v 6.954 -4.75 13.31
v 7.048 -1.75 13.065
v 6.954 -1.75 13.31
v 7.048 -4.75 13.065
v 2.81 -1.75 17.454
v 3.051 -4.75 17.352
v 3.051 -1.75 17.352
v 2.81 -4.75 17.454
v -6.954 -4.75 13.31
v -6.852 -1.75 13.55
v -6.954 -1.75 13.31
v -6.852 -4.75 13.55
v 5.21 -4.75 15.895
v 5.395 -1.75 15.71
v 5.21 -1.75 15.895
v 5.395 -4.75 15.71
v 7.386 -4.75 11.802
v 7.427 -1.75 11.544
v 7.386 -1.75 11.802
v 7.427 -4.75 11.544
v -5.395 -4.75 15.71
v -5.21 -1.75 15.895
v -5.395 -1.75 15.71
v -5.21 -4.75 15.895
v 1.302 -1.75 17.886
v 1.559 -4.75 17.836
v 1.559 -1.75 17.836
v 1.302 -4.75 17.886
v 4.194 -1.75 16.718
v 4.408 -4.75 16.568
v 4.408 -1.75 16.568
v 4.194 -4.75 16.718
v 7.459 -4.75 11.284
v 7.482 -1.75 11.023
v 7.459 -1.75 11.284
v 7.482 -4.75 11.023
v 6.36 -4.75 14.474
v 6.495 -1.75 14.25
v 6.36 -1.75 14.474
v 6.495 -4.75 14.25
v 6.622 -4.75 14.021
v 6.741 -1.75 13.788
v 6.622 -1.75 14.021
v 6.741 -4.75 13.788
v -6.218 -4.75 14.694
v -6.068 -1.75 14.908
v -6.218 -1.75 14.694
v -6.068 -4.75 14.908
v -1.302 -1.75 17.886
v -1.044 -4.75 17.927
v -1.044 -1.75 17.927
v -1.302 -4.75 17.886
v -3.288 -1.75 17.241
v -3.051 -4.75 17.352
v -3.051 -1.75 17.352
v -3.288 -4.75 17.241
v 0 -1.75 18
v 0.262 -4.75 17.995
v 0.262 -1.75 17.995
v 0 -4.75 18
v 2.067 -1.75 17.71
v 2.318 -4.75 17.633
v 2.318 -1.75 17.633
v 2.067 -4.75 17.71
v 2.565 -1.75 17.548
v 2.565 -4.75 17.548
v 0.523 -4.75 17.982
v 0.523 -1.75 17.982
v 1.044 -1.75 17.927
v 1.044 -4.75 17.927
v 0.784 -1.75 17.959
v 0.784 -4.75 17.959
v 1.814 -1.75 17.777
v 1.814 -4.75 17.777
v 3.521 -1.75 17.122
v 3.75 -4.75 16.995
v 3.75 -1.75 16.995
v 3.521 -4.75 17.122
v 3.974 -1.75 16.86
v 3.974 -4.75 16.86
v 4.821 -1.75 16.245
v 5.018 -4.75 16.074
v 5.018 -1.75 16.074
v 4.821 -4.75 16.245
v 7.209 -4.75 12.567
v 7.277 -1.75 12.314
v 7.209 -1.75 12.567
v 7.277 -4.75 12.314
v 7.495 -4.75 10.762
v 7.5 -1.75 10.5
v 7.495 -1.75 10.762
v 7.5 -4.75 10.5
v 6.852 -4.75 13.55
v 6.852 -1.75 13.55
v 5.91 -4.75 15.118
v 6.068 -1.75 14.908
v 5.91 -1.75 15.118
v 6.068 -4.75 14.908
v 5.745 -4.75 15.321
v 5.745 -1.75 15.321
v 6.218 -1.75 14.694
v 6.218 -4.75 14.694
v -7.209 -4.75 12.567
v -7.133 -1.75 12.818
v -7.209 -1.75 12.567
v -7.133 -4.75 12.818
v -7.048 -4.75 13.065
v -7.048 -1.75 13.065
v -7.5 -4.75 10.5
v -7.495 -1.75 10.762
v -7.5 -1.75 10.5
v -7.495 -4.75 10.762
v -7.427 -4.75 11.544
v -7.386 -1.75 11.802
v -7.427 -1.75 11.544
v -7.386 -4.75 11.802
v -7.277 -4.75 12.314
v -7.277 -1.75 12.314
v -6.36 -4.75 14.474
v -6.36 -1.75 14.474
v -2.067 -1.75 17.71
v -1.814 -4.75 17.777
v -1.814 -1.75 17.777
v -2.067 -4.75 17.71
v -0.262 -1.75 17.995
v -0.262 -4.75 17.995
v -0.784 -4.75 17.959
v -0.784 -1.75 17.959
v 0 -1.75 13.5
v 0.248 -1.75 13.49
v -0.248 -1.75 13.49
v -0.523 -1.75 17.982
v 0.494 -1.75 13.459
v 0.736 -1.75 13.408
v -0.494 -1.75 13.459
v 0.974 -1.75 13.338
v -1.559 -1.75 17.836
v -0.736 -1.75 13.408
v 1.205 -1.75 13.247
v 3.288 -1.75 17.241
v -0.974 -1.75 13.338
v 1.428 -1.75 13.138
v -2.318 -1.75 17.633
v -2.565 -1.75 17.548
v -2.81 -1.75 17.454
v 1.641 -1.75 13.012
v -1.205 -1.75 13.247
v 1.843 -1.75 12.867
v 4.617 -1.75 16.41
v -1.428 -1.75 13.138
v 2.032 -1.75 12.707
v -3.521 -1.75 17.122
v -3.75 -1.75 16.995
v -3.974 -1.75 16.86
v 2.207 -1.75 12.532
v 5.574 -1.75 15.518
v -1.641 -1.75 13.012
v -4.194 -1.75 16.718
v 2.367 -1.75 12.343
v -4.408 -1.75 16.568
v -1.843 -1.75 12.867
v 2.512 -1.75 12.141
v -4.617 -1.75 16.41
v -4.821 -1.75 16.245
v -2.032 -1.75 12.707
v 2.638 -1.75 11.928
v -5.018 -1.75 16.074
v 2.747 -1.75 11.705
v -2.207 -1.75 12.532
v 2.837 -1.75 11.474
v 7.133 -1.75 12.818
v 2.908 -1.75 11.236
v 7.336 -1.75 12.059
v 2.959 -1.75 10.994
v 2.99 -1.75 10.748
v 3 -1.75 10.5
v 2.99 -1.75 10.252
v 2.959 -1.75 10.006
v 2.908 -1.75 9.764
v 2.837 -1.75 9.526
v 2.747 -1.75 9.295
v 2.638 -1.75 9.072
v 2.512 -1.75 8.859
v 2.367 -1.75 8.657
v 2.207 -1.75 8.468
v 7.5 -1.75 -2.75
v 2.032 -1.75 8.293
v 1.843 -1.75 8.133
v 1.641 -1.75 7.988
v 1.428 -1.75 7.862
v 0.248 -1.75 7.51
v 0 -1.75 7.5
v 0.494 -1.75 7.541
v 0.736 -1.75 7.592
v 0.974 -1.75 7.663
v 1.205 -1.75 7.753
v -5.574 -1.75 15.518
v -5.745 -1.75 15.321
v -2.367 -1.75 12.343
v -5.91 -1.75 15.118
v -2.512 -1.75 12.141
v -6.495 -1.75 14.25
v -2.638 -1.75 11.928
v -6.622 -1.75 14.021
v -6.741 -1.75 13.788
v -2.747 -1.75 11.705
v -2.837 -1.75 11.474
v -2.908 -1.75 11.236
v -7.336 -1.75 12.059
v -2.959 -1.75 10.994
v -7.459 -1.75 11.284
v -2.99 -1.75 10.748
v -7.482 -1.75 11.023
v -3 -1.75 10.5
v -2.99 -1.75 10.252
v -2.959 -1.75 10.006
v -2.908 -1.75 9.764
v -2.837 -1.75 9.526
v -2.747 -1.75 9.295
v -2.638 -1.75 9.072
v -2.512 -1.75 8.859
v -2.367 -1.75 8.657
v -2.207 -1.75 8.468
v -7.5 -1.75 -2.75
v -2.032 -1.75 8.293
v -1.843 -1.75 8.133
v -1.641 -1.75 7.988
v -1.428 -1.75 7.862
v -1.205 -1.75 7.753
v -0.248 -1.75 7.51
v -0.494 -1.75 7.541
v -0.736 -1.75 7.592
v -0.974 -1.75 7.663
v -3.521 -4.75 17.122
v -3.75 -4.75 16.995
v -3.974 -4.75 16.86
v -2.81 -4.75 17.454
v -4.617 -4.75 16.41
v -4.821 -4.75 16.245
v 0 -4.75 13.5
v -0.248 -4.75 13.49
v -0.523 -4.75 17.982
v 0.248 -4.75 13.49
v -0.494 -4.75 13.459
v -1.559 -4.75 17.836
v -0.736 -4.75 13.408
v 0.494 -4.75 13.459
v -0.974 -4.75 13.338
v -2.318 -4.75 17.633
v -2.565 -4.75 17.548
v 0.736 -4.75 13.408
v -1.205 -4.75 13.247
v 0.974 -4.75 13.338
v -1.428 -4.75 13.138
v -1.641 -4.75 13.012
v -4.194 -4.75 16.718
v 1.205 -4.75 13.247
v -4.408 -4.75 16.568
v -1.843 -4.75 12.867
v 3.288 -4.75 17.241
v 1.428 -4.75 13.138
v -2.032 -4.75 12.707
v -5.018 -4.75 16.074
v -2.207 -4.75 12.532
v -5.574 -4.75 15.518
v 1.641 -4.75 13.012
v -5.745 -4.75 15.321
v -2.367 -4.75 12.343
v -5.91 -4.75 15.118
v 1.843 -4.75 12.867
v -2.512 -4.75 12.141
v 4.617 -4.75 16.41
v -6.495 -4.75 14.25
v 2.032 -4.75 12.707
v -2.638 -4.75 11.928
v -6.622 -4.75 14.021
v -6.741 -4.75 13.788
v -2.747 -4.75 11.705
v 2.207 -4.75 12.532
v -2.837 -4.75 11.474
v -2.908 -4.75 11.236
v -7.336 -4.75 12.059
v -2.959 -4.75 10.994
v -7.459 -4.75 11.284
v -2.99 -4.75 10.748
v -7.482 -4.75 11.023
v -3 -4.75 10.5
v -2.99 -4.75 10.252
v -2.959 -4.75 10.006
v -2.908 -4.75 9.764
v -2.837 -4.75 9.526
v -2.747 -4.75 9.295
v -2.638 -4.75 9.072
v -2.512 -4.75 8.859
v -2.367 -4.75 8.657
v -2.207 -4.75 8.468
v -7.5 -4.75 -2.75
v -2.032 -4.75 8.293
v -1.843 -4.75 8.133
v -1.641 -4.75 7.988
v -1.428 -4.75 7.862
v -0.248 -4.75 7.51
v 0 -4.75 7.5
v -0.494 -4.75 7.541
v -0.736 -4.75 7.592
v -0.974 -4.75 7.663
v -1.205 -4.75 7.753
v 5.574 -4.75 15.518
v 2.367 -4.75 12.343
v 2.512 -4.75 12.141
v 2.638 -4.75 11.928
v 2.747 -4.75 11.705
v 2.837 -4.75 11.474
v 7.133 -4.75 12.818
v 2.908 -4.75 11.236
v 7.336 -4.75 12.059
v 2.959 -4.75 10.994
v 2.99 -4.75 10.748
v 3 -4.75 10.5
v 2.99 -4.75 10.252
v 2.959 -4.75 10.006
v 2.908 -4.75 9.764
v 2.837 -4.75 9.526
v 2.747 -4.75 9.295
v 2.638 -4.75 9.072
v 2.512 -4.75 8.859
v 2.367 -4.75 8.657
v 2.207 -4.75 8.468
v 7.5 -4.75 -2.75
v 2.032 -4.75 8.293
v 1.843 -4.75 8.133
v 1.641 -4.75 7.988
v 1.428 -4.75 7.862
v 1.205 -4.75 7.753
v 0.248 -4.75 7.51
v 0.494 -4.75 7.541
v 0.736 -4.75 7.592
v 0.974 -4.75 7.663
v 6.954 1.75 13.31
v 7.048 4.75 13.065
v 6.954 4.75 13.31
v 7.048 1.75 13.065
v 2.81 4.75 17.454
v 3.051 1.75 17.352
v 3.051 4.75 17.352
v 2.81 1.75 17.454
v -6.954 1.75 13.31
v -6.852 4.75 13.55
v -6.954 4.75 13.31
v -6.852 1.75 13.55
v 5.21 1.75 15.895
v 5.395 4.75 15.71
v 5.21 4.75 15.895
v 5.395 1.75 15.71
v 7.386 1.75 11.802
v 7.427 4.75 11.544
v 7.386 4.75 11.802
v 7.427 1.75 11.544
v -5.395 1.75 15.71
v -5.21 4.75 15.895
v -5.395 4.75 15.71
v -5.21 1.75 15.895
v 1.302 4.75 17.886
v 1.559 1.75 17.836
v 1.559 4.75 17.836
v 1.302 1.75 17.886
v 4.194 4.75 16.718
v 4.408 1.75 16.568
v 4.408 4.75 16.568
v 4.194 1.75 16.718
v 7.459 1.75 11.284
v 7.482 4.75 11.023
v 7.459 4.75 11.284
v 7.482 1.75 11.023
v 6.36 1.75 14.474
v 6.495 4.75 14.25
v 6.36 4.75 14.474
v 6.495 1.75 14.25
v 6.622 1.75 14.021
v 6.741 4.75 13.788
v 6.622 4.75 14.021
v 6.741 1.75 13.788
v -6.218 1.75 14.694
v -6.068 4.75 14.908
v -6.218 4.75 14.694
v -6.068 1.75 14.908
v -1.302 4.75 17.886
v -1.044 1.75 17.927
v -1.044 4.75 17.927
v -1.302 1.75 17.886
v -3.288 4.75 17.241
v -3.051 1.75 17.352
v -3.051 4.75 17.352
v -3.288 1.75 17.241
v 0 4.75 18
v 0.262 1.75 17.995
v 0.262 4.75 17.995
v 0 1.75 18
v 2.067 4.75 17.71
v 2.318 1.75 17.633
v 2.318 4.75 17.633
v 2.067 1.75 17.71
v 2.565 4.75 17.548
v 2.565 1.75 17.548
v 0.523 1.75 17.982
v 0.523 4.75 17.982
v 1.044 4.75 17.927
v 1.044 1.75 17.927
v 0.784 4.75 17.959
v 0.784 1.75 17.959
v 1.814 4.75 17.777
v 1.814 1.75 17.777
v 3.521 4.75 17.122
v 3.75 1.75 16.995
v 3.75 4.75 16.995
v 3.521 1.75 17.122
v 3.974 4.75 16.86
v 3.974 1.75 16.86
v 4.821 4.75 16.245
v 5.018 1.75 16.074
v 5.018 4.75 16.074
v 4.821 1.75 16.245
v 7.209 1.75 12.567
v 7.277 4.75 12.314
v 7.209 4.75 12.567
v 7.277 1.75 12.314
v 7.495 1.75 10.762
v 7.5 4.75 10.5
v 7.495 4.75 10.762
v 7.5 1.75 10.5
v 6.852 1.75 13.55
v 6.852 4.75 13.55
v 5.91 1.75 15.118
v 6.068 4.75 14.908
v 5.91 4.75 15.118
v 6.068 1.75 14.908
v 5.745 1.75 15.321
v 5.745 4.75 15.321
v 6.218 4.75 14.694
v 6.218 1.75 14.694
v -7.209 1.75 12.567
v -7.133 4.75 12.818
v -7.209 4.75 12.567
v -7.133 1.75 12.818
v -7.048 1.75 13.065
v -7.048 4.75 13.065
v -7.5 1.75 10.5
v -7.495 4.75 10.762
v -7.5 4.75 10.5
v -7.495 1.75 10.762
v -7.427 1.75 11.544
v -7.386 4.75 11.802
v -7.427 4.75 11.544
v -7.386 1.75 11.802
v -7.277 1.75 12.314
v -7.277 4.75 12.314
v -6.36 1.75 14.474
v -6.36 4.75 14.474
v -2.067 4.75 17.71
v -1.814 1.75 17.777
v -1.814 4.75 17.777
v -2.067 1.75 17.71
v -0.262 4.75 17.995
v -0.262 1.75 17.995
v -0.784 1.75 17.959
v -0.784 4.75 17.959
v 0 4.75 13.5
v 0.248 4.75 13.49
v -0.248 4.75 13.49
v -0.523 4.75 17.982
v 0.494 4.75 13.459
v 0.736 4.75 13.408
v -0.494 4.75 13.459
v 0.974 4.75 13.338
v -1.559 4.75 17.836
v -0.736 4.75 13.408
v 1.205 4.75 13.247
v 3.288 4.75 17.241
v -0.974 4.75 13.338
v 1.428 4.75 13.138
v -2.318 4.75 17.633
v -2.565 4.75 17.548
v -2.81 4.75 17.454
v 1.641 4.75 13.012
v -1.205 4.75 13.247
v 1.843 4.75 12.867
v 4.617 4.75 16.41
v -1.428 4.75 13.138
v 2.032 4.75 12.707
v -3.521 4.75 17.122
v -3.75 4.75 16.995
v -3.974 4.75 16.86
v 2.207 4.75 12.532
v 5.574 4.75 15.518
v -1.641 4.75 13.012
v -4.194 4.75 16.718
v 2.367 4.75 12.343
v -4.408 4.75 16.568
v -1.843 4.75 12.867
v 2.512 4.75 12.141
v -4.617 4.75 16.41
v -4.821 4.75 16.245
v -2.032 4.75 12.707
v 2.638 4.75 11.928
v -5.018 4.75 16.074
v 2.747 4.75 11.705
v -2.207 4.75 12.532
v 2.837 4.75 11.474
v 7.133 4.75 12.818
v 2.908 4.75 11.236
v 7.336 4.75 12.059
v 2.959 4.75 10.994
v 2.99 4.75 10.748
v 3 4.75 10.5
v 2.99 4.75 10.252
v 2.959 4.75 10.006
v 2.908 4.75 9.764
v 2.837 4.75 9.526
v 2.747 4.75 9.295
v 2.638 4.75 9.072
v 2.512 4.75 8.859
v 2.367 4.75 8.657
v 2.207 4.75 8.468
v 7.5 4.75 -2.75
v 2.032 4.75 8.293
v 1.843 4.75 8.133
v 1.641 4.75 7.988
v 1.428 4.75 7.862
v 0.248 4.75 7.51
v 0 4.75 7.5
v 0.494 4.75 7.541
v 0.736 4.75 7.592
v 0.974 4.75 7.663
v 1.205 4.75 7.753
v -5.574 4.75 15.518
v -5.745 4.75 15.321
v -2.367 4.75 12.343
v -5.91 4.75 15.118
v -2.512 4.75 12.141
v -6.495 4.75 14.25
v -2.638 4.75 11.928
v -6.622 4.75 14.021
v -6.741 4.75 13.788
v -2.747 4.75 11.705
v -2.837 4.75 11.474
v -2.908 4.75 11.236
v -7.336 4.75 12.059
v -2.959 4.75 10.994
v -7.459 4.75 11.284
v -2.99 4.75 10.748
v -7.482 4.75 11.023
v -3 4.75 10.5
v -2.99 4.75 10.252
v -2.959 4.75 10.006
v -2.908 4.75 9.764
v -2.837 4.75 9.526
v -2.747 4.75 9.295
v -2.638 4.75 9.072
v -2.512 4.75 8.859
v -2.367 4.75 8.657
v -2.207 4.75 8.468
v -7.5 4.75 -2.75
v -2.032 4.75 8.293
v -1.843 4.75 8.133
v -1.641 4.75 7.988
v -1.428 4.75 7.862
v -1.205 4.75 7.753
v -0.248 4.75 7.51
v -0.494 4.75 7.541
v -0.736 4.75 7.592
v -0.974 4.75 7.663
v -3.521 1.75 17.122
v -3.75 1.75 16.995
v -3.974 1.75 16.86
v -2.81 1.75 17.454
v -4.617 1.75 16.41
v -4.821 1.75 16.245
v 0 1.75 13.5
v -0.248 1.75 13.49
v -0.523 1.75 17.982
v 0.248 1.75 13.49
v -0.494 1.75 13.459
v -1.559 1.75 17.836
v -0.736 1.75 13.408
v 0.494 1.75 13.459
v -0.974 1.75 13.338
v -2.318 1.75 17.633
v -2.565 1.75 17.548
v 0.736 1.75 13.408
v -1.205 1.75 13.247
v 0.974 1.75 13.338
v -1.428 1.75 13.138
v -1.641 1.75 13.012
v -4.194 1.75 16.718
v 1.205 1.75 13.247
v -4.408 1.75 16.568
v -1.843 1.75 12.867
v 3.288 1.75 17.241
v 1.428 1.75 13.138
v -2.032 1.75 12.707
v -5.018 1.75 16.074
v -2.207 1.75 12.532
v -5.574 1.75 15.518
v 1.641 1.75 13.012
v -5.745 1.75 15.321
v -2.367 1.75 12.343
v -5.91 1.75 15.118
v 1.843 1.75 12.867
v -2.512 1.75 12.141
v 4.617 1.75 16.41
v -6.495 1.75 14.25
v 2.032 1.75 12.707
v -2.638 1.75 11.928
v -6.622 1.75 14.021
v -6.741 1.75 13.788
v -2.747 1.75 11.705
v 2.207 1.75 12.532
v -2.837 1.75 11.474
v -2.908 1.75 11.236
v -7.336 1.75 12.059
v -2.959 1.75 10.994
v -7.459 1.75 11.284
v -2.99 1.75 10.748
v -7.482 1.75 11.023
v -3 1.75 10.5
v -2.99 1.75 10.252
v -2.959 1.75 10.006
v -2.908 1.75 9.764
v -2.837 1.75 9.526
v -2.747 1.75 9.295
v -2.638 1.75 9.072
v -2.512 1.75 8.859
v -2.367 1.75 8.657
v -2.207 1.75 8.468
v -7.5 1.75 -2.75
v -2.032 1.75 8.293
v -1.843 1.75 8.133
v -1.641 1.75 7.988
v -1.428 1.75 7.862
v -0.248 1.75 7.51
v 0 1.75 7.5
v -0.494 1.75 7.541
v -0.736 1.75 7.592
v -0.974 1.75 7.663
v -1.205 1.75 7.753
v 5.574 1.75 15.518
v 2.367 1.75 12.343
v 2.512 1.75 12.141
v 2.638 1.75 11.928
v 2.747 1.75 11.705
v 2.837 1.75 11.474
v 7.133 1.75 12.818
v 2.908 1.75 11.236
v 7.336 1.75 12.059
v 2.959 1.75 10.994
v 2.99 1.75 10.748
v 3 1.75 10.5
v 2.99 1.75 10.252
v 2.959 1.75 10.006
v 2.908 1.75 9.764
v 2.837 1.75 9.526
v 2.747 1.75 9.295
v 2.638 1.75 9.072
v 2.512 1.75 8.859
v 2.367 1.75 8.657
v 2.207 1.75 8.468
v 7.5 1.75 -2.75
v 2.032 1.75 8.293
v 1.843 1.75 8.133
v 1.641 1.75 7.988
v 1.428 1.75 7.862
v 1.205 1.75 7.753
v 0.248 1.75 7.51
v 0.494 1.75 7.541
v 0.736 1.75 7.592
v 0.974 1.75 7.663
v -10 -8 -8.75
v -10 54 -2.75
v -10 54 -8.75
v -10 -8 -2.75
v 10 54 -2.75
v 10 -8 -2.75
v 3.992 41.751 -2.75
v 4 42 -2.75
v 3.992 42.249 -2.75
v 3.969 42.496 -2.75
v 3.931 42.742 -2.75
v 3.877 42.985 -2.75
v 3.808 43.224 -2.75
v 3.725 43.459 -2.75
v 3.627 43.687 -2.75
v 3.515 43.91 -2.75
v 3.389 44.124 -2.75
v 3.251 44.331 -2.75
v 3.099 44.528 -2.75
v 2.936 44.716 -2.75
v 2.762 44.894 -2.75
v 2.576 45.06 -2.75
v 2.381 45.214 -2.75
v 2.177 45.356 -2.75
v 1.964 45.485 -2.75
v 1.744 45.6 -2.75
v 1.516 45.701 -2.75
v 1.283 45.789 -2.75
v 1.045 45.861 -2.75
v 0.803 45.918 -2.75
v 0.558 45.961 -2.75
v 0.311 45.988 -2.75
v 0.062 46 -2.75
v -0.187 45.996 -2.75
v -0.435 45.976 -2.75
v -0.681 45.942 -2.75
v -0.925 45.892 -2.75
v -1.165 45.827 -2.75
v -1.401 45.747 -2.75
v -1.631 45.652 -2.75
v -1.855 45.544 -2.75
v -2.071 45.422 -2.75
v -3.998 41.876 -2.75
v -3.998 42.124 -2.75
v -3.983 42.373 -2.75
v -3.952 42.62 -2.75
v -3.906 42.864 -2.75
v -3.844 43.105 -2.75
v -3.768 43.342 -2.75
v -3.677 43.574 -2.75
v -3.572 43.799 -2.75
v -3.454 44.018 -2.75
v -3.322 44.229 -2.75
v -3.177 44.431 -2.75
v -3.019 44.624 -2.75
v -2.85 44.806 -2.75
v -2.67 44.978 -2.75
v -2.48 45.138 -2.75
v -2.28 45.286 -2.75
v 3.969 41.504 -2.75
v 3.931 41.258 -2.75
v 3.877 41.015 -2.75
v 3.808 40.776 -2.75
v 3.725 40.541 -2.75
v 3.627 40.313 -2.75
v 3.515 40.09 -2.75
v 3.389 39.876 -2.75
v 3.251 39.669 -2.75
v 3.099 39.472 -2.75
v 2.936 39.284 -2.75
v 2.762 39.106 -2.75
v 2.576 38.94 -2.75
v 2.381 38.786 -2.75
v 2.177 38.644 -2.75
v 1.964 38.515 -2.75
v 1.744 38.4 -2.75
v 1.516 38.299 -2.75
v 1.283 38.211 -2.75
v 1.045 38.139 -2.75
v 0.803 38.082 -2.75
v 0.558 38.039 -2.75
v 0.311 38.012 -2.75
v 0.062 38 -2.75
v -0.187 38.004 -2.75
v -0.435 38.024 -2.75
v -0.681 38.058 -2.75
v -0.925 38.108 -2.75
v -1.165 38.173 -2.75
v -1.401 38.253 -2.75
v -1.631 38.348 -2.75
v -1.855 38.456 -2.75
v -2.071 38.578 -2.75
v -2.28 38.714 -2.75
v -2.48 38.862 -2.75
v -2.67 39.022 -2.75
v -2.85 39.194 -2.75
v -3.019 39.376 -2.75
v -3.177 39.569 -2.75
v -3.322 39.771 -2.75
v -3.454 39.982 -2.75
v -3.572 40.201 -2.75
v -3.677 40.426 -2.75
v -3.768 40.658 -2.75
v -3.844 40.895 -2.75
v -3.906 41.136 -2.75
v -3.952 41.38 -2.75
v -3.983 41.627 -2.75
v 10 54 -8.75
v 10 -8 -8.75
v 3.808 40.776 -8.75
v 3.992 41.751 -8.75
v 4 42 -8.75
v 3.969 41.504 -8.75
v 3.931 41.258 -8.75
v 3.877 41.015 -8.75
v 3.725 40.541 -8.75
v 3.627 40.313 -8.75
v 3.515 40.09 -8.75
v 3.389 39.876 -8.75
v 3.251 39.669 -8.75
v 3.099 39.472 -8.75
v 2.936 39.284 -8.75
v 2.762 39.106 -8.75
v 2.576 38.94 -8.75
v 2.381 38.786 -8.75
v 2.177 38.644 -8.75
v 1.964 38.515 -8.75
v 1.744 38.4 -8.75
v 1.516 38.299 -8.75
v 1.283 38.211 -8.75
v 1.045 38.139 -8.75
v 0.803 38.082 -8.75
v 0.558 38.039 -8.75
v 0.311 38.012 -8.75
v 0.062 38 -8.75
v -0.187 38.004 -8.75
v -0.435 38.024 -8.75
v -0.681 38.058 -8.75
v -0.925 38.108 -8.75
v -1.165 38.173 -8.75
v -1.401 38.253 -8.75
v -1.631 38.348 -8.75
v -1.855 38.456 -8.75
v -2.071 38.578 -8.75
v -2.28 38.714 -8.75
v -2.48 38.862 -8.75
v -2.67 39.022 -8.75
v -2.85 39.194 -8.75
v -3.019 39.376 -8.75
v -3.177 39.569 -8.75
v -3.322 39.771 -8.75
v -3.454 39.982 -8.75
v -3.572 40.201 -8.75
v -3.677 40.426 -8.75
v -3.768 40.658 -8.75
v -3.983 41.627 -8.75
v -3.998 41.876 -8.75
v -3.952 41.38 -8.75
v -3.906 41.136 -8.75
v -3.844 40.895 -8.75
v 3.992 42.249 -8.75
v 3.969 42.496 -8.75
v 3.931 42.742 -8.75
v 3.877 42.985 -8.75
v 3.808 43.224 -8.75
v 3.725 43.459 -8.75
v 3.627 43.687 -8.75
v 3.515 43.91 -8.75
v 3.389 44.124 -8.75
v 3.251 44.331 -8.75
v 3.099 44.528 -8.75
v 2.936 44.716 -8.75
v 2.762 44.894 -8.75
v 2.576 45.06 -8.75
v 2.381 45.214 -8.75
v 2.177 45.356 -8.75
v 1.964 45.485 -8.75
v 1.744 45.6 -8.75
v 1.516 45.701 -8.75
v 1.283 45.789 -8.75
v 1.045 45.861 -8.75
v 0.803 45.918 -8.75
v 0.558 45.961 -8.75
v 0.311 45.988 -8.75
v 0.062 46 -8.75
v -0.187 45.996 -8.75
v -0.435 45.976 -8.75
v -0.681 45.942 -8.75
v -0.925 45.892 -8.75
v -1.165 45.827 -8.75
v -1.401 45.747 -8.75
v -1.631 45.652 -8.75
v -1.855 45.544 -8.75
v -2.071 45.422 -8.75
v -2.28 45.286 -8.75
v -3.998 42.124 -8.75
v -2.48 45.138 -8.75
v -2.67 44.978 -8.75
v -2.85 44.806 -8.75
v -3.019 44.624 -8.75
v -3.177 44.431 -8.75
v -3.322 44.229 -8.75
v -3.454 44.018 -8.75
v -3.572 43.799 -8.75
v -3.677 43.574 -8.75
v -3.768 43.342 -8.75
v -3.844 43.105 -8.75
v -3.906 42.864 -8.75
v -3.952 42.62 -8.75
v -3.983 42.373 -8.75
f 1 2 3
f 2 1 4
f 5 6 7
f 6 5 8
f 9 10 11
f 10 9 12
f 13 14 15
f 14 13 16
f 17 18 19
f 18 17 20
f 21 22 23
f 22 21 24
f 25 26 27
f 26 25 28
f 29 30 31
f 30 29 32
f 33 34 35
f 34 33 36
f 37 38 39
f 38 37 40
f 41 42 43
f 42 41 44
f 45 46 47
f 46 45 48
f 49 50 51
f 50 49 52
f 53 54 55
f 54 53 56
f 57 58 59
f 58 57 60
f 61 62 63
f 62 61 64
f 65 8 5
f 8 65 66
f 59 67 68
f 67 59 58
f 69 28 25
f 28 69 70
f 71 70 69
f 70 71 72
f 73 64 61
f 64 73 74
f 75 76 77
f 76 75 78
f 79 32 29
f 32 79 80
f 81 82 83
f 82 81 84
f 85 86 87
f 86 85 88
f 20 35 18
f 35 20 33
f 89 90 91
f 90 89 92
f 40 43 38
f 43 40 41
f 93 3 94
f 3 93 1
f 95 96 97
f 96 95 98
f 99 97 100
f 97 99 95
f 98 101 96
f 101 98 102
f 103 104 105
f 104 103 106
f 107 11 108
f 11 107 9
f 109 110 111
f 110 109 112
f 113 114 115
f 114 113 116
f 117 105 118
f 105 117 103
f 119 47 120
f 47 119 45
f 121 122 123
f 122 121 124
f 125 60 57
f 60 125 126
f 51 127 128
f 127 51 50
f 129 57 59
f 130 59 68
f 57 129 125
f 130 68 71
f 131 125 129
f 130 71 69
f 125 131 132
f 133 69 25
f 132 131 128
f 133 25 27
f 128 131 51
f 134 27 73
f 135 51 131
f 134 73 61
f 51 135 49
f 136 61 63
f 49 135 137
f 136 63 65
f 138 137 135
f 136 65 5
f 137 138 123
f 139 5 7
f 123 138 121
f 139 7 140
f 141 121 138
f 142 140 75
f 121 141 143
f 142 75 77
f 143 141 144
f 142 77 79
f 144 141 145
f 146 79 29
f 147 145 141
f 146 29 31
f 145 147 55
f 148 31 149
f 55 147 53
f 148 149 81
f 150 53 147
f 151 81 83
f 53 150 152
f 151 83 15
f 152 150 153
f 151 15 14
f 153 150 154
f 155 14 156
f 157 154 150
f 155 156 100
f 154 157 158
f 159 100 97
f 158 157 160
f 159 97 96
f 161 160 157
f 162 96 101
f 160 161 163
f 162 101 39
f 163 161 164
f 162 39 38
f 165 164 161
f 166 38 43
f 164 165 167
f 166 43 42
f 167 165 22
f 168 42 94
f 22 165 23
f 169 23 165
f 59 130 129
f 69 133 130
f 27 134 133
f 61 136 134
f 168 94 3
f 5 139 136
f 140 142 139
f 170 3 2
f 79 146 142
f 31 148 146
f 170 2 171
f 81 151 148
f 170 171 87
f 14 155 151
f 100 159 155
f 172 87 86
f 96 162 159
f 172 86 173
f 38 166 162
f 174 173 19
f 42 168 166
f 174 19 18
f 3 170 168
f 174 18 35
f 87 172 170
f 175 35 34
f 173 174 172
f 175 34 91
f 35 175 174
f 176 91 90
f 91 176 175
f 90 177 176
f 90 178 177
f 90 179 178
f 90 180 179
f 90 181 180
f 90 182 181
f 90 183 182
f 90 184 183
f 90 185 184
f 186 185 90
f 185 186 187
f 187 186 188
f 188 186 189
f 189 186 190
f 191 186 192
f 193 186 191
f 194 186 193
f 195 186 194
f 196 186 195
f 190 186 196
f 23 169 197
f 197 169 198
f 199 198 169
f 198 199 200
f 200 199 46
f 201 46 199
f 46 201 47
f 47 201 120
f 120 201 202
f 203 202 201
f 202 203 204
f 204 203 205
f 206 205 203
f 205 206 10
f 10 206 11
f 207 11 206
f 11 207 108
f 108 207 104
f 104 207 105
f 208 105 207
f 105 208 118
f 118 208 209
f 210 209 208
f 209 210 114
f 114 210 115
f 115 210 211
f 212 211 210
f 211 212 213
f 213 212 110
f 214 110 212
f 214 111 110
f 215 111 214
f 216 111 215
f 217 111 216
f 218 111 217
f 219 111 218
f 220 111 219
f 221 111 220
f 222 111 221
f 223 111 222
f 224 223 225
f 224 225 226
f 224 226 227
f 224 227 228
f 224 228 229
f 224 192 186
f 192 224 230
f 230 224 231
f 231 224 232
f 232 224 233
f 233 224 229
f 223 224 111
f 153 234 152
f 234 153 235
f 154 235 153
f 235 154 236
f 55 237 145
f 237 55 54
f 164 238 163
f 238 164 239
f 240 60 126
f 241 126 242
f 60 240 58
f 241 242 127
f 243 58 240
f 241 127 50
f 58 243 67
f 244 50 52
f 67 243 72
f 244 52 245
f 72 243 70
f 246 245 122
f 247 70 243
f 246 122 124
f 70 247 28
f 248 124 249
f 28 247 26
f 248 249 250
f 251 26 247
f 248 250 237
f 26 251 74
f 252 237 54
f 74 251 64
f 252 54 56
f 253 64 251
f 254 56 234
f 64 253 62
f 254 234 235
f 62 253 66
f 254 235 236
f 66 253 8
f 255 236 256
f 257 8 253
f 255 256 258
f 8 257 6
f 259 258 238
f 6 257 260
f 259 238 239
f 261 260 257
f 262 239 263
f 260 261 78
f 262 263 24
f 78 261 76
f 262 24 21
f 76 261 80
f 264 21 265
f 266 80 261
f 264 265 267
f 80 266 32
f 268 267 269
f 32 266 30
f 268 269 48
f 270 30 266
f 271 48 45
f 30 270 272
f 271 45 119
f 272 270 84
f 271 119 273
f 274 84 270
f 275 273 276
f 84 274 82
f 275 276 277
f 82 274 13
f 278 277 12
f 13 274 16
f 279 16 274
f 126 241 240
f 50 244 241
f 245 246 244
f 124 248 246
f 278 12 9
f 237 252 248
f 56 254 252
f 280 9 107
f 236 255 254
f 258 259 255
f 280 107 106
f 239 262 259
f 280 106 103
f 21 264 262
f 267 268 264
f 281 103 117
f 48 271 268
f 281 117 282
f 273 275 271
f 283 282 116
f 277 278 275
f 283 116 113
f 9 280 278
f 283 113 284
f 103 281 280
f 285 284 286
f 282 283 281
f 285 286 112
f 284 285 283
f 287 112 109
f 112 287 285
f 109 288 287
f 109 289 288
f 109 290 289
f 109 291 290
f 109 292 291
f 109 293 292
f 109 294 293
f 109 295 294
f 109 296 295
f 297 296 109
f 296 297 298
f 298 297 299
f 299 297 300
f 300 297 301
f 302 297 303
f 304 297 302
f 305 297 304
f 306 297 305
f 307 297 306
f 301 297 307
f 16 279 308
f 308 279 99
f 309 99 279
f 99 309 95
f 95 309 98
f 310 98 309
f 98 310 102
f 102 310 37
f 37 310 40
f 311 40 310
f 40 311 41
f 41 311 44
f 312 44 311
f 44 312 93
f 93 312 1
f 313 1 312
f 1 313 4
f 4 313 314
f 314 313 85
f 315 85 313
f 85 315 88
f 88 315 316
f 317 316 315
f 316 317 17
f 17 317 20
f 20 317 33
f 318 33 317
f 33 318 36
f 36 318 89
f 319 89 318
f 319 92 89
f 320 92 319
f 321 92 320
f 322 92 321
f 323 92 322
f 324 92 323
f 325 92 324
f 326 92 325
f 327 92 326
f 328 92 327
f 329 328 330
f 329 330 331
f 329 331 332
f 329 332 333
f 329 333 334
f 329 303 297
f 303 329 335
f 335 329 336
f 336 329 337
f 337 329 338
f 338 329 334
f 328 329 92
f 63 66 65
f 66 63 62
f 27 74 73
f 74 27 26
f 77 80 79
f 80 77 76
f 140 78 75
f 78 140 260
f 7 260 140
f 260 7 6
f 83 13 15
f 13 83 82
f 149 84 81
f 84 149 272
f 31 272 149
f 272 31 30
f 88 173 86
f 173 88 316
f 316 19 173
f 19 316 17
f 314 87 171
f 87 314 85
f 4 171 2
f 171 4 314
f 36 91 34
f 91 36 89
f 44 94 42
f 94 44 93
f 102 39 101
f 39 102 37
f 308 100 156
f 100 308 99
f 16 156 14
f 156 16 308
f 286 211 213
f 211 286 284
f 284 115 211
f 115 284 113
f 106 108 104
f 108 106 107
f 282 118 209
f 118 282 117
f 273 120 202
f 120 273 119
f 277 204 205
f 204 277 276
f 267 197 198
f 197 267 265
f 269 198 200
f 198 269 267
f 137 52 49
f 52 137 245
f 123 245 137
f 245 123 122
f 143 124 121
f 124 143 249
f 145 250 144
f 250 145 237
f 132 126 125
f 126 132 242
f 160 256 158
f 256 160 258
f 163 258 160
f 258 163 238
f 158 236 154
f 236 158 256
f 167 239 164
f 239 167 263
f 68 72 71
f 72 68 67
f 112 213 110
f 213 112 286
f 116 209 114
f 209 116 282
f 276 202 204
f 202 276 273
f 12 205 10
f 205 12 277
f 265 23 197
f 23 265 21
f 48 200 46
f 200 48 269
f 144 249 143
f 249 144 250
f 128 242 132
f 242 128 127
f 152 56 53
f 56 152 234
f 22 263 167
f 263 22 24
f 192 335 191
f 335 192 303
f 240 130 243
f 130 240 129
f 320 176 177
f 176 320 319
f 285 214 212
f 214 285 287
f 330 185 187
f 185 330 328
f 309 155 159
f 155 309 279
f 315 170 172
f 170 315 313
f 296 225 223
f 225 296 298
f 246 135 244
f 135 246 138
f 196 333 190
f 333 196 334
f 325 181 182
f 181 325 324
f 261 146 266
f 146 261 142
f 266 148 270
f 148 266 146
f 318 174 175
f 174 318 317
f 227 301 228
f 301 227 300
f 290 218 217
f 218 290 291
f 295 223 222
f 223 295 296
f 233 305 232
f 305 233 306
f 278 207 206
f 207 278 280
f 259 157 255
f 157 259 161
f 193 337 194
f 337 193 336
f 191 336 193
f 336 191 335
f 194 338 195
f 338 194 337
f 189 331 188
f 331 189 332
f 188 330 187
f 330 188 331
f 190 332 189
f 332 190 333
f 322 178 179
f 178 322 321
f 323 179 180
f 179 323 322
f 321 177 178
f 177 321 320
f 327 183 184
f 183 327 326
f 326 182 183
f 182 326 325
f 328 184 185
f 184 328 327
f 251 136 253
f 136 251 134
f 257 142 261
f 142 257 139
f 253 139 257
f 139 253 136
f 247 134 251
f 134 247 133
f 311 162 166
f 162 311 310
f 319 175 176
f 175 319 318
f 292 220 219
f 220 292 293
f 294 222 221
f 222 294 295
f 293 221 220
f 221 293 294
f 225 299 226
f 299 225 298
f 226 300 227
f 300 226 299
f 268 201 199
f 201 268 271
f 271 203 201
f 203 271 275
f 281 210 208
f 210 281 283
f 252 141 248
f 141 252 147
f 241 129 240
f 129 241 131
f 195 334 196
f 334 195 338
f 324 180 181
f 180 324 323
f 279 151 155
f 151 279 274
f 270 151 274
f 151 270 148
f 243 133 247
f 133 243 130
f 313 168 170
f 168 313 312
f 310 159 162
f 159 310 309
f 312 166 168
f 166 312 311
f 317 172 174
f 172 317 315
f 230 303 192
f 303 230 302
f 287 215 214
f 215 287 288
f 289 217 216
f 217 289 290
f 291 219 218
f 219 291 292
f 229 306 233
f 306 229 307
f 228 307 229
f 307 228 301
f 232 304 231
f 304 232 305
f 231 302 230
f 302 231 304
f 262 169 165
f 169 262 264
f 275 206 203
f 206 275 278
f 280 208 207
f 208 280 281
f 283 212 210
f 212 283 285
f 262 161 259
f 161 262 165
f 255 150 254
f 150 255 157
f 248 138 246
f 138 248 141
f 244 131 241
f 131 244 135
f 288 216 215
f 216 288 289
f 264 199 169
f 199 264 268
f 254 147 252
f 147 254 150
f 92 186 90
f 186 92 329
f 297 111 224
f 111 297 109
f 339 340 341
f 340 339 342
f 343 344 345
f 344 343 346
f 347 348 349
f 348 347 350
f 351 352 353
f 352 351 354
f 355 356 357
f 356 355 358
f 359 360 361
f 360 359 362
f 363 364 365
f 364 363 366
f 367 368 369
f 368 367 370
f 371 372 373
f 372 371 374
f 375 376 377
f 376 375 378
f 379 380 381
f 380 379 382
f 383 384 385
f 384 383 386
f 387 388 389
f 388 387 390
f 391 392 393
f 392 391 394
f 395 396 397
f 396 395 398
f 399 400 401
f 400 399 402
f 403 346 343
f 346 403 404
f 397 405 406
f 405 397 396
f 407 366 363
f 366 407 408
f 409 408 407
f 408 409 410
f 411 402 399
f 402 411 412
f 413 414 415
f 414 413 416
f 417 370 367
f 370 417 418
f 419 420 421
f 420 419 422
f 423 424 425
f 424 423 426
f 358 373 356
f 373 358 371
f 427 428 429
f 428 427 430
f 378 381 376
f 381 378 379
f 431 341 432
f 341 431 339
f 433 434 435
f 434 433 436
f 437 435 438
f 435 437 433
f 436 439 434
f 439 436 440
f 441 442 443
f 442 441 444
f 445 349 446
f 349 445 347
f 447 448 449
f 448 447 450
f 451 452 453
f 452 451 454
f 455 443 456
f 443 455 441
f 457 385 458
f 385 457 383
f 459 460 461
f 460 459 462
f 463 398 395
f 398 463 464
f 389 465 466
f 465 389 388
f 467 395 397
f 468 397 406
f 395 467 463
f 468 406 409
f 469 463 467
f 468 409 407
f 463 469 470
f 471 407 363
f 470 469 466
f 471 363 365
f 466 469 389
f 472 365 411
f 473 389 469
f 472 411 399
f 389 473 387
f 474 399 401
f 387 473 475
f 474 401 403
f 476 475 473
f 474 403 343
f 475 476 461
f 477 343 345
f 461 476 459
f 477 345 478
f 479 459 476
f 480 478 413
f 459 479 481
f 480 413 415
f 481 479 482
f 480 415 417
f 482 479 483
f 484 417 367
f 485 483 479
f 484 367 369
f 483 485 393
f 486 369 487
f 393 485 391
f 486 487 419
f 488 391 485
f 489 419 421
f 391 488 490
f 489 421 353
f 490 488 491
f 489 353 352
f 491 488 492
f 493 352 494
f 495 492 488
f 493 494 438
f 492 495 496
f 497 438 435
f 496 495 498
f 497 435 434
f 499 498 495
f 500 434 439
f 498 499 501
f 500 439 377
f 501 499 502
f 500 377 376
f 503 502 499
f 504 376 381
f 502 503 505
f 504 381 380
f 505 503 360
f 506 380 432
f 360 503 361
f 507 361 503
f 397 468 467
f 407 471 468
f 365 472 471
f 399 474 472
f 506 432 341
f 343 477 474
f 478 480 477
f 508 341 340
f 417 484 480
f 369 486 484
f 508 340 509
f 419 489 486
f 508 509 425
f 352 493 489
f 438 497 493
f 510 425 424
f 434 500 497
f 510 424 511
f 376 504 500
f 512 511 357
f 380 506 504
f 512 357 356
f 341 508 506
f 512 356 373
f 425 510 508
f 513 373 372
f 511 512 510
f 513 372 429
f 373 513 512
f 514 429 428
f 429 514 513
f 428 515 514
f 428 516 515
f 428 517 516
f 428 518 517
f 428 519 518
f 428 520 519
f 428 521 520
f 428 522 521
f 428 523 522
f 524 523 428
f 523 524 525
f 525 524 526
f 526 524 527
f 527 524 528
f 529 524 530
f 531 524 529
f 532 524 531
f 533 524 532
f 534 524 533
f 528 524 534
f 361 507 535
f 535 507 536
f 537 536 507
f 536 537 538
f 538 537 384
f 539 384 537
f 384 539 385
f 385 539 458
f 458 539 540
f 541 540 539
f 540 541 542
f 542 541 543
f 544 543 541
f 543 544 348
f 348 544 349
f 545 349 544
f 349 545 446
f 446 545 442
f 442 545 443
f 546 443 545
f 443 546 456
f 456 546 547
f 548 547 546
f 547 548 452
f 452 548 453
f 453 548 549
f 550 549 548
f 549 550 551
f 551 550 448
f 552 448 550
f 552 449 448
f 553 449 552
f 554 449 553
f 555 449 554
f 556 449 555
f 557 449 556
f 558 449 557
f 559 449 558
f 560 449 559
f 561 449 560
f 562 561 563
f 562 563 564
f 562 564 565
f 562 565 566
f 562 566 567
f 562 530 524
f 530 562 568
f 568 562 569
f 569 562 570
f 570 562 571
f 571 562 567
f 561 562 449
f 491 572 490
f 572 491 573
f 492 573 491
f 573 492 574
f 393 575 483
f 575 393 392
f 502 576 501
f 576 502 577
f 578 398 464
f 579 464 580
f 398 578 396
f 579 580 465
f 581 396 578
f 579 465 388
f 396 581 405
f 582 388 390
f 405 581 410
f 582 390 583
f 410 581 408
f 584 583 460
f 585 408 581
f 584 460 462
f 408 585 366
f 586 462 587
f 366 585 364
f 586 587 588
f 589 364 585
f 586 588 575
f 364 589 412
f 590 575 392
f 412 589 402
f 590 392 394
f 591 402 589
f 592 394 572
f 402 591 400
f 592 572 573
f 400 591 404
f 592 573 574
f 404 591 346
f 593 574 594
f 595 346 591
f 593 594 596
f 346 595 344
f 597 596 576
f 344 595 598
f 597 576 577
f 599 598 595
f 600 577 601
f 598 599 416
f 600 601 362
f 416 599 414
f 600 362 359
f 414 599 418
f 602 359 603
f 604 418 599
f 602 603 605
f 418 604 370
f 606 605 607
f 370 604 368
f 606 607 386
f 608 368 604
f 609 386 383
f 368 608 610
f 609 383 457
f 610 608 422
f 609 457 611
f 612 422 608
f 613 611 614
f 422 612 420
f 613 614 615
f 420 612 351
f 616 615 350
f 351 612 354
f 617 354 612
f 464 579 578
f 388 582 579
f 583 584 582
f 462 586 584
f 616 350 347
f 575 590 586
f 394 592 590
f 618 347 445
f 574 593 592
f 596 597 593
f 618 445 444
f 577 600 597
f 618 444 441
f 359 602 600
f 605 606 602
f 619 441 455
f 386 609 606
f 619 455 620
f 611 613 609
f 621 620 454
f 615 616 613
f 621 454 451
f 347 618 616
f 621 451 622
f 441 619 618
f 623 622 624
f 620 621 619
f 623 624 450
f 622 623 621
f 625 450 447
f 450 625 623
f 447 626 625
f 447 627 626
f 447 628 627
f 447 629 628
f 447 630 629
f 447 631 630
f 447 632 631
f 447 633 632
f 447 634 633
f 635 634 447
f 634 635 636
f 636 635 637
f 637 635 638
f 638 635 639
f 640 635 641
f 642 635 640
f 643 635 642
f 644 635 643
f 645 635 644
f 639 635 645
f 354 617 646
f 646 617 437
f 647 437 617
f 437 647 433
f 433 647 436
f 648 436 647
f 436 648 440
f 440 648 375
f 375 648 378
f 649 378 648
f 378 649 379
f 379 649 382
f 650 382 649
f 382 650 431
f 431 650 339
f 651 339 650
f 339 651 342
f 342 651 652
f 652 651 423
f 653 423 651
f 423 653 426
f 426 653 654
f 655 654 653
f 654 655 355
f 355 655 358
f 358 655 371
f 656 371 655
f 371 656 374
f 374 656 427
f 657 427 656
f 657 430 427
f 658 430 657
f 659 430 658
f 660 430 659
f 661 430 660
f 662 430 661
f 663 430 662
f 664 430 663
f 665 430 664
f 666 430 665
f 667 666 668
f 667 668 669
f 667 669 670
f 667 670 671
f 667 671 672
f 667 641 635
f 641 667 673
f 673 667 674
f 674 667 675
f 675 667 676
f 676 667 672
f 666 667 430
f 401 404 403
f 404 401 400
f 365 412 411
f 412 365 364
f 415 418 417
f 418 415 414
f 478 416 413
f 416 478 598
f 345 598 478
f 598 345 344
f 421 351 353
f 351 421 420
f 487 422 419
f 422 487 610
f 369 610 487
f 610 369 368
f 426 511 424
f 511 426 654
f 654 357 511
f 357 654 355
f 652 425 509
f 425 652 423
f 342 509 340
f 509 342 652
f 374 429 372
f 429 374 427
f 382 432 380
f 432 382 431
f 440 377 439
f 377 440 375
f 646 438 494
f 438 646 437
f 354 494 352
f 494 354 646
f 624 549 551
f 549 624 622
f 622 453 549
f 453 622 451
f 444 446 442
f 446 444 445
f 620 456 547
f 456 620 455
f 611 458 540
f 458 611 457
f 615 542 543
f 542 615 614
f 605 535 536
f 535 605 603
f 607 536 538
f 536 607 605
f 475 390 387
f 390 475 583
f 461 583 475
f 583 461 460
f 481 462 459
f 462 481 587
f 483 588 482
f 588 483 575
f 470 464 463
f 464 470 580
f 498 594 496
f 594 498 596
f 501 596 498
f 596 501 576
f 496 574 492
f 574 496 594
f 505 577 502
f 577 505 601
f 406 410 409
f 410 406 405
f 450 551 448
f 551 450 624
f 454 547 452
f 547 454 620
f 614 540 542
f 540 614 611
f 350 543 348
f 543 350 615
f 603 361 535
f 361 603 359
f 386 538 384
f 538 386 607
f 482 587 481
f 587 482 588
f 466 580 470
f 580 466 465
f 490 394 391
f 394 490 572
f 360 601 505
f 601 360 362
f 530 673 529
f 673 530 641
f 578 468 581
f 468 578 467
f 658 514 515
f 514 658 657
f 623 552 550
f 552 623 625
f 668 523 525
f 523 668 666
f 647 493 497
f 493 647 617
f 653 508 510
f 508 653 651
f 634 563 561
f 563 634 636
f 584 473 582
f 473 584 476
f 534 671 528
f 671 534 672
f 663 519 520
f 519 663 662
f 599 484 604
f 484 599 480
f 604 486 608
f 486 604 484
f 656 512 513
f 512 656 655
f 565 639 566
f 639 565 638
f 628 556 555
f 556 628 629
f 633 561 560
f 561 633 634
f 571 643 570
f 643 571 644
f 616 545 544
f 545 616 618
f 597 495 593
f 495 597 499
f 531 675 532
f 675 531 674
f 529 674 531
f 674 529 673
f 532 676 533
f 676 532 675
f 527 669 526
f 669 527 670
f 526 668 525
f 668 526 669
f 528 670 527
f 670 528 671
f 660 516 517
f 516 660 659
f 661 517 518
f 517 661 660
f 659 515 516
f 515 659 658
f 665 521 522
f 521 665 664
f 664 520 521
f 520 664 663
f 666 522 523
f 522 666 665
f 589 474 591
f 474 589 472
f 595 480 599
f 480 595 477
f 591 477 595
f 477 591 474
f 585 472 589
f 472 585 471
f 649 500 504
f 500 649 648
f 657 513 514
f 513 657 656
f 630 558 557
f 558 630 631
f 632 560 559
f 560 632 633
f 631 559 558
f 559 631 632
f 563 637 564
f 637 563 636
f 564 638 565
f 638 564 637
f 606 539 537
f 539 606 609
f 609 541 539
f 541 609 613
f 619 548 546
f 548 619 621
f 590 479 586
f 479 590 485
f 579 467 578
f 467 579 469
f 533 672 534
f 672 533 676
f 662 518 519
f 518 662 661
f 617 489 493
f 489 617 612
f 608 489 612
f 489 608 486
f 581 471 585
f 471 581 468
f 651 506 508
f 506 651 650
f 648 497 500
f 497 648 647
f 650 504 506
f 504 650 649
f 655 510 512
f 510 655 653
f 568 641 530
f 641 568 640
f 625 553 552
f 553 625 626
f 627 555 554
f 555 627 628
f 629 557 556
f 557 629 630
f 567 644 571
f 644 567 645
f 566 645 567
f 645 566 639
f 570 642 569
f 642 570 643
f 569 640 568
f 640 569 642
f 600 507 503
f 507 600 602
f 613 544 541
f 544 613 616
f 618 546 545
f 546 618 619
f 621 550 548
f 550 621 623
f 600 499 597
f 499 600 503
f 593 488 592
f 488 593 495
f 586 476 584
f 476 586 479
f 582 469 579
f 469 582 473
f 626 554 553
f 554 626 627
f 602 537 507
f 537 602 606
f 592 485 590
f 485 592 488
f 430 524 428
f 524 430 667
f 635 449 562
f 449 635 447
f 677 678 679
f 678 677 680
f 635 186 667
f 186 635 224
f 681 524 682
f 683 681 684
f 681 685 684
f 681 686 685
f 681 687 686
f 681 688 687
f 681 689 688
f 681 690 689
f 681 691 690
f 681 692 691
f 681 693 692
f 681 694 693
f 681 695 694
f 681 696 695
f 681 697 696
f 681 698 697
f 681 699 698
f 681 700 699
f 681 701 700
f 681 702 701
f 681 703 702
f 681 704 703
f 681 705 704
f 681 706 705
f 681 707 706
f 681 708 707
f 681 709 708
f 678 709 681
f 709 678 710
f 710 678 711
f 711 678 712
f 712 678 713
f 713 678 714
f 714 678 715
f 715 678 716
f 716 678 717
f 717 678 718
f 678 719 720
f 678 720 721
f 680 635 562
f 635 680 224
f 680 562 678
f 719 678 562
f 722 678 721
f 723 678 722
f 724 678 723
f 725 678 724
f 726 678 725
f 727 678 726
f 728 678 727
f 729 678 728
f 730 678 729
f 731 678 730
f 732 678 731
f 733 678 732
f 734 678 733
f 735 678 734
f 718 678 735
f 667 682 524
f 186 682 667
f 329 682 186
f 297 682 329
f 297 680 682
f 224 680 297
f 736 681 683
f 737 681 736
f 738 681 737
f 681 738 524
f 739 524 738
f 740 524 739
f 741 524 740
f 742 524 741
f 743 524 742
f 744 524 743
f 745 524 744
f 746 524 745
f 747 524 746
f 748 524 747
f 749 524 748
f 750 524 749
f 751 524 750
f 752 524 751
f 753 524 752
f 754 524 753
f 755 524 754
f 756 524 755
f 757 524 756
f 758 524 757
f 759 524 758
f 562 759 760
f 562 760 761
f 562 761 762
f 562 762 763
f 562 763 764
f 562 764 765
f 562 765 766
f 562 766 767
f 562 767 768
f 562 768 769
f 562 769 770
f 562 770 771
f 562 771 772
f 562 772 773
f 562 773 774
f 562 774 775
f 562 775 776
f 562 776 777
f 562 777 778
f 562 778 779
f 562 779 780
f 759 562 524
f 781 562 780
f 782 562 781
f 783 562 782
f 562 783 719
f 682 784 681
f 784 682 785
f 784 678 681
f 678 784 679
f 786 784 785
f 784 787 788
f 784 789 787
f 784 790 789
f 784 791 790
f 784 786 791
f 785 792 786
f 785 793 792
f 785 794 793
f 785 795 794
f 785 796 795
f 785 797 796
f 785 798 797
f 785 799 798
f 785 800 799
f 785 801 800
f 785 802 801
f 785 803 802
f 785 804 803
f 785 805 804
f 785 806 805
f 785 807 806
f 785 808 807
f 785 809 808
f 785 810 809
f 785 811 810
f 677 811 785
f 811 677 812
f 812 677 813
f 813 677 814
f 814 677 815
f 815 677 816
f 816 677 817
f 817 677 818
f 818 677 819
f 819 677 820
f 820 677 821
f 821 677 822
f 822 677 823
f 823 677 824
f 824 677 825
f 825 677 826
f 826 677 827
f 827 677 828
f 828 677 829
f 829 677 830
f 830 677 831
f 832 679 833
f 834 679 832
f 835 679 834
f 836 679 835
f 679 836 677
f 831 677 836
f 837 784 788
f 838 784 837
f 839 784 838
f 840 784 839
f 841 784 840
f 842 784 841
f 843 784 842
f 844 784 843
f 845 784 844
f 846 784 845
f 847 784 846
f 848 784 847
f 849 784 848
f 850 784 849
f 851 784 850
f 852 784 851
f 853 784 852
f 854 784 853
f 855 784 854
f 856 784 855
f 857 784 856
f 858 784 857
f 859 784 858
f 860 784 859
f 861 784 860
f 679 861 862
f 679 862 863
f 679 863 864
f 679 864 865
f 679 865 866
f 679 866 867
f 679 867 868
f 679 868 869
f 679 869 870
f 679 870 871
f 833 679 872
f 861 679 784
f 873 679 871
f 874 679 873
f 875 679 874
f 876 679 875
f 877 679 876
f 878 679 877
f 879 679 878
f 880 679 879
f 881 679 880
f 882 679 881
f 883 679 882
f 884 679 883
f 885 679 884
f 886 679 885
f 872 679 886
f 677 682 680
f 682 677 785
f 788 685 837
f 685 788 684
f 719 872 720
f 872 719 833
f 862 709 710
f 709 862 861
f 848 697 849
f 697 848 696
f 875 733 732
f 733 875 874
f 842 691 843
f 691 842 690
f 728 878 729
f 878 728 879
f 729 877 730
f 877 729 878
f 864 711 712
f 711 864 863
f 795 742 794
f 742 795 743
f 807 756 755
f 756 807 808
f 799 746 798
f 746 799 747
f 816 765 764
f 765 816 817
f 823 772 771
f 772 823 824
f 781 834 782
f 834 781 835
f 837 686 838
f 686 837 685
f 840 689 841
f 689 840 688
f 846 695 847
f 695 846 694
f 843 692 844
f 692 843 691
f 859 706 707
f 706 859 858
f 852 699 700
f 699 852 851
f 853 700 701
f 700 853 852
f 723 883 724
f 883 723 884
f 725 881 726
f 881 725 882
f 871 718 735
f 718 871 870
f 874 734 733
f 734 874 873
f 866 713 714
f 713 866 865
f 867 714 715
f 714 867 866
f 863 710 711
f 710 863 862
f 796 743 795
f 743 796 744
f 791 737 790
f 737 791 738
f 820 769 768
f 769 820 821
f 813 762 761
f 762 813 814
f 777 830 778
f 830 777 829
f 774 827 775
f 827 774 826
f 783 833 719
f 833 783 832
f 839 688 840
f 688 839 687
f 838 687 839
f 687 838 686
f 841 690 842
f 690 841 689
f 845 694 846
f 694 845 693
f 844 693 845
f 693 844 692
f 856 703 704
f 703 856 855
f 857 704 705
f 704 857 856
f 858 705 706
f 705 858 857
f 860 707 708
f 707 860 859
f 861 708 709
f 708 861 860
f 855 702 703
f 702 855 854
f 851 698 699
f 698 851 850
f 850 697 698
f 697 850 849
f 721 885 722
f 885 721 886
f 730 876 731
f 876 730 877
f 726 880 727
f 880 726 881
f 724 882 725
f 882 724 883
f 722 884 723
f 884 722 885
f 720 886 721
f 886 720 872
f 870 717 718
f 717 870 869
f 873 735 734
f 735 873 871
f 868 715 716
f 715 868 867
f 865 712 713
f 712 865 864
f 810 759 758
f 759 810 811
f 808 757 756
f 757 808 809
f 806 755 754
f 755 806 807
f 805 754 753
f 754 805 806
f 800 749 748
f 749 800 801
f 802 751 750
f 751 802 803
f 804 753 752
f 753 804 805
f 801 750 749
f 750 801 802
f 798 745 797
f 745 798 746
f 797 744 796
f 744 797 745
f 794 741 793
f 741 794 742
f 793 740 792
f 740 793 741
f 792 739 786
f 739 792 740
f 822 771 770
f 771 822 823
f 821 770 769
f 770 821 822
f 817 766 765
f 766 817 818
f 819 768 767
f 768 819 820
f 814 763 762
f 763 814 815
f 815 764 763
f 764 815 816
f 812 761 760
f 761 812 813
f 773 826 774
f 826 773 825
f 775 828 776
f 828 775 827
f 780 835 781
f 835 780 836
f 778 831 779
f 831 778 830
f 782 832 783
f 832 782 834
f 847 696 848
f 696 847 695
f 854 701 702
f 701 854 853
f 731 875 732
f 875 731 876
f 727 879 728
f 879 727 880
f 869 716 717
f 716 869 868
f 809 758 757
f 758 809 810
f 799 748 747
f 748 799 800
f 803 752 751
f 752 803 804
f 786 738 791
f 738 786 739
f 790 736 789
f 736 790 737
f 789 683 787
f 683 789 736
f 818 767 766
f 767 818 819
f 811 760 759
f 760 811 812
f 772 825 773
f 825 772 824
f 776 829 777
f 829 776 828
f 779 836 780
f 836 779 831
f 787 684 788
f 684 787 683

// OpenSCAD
$fa = 2;
$fs = 0.25;
Extra_Mount_Depth = 6;

module nut_hole()
{
	rotate([0, 90, 0]) // (Un)comment to rotate nut hole
	rotate([90, 0, 0])
		for(i = [0:(360 / 3):359])
		{
			rotate([0, 0, i])
				cube([4.6765, 8.1, 5], center = true);
		}
}

module flap(Width)
{
	rotate([90, 0, 0])
	union()
	{
		translate([3.5, (-7.5), 0])
			cube([4 + Extra_Mount_Depth, 15, Width]);


		translate([0, (-7.5), 0])
			cube([7.5 + Extra_Mount_Depth, 4, Width]);

		translate([0, 3.5, 0])
			cube([7.5 + Extra_Mount_Depth, 4, Width]);

		difference()
		{
			cylinder(h = Width, d = 15);

			translate([0, 0, (-1)])
				cylinder(h = Width + 2, d = 6);
		}
	}
}

module mount2()
{
	union()
	{

			translate([0, 4, 0])
		flap(3);

		translate([0, 10.5, 0])
		flap(3);
	}
}

module mount3()
{
	union()
	{
		difference()
		{
			translate([0, (-2.5), 0])
				flap(8);

			translate([0, (-8.5), 0])
				nut_hole();
		}

		mount2();
	}
}

module camMount()
{
	translate([(-6.25), (-10.5), 0])
	difference()
	{
		union()
		{
			translate([0, 0, (-3)])
				cylinder(r = 2, h = 3);

			translate([0, 21, (-3)])
				cylinder(r = 2, h = 3);

			translate([(-2), 0, (-3)])
				cube([4, 21, 3]);

			translate([12.5, 0, (-3)])
				cylinder(r = 2, h = 3);

			translate([12.5, 21, (-3)])
				cylinder(r = 2, h = 3);

			translate([10.5, 0, (-3)])
				cube([4, 21, 3]);

			translate([0, (-2), (-3)])
				cube([12.5, 25, 3]);
		}

		translate([0, 0, (-4)])
			cylinder(d = 2.2, h = 5);

		translate([0, 21, (-4)])
			cylinder(d = 2.2, h = 5);

		translate([12.5, 0, (-4)])
			cylinder(d = 2.2, h = 5);

		translate([12.5, 21, (-4)])
			cylinder(d = 2.2, h = 5);
	}
}
union()
{
//* GoPro Mount - 2 flap no nut hole
	translate([0, (-5.75), 10.5])
		rotate([0, 90, 0])
			mount2();
// */

/* GoPro Mount - 3 flap w/nut hole
	translate([0, 0, 10.5])
		rotate([0, 90, 0])
			mount3();
// */

/* GoPro Mount - 2 flap no nut hole
	translate([0, (-5.75), 7.5])
		mount2();
// */

/* GoPro Mount - 3 flap w/nut hole side mount
	translate([0, 0, 7.5])
		mount3();
// */



translate([0, 0, 0])
	*camMount();
  bracket();
  
}

module bracket() {
  difference() {
    translate([-10,-8,-8.75]) cube([20,62,6]);
    translate([0,42,-10]) rotate([0,0,0]) cylinder(r=4,h=10);
  }
}
